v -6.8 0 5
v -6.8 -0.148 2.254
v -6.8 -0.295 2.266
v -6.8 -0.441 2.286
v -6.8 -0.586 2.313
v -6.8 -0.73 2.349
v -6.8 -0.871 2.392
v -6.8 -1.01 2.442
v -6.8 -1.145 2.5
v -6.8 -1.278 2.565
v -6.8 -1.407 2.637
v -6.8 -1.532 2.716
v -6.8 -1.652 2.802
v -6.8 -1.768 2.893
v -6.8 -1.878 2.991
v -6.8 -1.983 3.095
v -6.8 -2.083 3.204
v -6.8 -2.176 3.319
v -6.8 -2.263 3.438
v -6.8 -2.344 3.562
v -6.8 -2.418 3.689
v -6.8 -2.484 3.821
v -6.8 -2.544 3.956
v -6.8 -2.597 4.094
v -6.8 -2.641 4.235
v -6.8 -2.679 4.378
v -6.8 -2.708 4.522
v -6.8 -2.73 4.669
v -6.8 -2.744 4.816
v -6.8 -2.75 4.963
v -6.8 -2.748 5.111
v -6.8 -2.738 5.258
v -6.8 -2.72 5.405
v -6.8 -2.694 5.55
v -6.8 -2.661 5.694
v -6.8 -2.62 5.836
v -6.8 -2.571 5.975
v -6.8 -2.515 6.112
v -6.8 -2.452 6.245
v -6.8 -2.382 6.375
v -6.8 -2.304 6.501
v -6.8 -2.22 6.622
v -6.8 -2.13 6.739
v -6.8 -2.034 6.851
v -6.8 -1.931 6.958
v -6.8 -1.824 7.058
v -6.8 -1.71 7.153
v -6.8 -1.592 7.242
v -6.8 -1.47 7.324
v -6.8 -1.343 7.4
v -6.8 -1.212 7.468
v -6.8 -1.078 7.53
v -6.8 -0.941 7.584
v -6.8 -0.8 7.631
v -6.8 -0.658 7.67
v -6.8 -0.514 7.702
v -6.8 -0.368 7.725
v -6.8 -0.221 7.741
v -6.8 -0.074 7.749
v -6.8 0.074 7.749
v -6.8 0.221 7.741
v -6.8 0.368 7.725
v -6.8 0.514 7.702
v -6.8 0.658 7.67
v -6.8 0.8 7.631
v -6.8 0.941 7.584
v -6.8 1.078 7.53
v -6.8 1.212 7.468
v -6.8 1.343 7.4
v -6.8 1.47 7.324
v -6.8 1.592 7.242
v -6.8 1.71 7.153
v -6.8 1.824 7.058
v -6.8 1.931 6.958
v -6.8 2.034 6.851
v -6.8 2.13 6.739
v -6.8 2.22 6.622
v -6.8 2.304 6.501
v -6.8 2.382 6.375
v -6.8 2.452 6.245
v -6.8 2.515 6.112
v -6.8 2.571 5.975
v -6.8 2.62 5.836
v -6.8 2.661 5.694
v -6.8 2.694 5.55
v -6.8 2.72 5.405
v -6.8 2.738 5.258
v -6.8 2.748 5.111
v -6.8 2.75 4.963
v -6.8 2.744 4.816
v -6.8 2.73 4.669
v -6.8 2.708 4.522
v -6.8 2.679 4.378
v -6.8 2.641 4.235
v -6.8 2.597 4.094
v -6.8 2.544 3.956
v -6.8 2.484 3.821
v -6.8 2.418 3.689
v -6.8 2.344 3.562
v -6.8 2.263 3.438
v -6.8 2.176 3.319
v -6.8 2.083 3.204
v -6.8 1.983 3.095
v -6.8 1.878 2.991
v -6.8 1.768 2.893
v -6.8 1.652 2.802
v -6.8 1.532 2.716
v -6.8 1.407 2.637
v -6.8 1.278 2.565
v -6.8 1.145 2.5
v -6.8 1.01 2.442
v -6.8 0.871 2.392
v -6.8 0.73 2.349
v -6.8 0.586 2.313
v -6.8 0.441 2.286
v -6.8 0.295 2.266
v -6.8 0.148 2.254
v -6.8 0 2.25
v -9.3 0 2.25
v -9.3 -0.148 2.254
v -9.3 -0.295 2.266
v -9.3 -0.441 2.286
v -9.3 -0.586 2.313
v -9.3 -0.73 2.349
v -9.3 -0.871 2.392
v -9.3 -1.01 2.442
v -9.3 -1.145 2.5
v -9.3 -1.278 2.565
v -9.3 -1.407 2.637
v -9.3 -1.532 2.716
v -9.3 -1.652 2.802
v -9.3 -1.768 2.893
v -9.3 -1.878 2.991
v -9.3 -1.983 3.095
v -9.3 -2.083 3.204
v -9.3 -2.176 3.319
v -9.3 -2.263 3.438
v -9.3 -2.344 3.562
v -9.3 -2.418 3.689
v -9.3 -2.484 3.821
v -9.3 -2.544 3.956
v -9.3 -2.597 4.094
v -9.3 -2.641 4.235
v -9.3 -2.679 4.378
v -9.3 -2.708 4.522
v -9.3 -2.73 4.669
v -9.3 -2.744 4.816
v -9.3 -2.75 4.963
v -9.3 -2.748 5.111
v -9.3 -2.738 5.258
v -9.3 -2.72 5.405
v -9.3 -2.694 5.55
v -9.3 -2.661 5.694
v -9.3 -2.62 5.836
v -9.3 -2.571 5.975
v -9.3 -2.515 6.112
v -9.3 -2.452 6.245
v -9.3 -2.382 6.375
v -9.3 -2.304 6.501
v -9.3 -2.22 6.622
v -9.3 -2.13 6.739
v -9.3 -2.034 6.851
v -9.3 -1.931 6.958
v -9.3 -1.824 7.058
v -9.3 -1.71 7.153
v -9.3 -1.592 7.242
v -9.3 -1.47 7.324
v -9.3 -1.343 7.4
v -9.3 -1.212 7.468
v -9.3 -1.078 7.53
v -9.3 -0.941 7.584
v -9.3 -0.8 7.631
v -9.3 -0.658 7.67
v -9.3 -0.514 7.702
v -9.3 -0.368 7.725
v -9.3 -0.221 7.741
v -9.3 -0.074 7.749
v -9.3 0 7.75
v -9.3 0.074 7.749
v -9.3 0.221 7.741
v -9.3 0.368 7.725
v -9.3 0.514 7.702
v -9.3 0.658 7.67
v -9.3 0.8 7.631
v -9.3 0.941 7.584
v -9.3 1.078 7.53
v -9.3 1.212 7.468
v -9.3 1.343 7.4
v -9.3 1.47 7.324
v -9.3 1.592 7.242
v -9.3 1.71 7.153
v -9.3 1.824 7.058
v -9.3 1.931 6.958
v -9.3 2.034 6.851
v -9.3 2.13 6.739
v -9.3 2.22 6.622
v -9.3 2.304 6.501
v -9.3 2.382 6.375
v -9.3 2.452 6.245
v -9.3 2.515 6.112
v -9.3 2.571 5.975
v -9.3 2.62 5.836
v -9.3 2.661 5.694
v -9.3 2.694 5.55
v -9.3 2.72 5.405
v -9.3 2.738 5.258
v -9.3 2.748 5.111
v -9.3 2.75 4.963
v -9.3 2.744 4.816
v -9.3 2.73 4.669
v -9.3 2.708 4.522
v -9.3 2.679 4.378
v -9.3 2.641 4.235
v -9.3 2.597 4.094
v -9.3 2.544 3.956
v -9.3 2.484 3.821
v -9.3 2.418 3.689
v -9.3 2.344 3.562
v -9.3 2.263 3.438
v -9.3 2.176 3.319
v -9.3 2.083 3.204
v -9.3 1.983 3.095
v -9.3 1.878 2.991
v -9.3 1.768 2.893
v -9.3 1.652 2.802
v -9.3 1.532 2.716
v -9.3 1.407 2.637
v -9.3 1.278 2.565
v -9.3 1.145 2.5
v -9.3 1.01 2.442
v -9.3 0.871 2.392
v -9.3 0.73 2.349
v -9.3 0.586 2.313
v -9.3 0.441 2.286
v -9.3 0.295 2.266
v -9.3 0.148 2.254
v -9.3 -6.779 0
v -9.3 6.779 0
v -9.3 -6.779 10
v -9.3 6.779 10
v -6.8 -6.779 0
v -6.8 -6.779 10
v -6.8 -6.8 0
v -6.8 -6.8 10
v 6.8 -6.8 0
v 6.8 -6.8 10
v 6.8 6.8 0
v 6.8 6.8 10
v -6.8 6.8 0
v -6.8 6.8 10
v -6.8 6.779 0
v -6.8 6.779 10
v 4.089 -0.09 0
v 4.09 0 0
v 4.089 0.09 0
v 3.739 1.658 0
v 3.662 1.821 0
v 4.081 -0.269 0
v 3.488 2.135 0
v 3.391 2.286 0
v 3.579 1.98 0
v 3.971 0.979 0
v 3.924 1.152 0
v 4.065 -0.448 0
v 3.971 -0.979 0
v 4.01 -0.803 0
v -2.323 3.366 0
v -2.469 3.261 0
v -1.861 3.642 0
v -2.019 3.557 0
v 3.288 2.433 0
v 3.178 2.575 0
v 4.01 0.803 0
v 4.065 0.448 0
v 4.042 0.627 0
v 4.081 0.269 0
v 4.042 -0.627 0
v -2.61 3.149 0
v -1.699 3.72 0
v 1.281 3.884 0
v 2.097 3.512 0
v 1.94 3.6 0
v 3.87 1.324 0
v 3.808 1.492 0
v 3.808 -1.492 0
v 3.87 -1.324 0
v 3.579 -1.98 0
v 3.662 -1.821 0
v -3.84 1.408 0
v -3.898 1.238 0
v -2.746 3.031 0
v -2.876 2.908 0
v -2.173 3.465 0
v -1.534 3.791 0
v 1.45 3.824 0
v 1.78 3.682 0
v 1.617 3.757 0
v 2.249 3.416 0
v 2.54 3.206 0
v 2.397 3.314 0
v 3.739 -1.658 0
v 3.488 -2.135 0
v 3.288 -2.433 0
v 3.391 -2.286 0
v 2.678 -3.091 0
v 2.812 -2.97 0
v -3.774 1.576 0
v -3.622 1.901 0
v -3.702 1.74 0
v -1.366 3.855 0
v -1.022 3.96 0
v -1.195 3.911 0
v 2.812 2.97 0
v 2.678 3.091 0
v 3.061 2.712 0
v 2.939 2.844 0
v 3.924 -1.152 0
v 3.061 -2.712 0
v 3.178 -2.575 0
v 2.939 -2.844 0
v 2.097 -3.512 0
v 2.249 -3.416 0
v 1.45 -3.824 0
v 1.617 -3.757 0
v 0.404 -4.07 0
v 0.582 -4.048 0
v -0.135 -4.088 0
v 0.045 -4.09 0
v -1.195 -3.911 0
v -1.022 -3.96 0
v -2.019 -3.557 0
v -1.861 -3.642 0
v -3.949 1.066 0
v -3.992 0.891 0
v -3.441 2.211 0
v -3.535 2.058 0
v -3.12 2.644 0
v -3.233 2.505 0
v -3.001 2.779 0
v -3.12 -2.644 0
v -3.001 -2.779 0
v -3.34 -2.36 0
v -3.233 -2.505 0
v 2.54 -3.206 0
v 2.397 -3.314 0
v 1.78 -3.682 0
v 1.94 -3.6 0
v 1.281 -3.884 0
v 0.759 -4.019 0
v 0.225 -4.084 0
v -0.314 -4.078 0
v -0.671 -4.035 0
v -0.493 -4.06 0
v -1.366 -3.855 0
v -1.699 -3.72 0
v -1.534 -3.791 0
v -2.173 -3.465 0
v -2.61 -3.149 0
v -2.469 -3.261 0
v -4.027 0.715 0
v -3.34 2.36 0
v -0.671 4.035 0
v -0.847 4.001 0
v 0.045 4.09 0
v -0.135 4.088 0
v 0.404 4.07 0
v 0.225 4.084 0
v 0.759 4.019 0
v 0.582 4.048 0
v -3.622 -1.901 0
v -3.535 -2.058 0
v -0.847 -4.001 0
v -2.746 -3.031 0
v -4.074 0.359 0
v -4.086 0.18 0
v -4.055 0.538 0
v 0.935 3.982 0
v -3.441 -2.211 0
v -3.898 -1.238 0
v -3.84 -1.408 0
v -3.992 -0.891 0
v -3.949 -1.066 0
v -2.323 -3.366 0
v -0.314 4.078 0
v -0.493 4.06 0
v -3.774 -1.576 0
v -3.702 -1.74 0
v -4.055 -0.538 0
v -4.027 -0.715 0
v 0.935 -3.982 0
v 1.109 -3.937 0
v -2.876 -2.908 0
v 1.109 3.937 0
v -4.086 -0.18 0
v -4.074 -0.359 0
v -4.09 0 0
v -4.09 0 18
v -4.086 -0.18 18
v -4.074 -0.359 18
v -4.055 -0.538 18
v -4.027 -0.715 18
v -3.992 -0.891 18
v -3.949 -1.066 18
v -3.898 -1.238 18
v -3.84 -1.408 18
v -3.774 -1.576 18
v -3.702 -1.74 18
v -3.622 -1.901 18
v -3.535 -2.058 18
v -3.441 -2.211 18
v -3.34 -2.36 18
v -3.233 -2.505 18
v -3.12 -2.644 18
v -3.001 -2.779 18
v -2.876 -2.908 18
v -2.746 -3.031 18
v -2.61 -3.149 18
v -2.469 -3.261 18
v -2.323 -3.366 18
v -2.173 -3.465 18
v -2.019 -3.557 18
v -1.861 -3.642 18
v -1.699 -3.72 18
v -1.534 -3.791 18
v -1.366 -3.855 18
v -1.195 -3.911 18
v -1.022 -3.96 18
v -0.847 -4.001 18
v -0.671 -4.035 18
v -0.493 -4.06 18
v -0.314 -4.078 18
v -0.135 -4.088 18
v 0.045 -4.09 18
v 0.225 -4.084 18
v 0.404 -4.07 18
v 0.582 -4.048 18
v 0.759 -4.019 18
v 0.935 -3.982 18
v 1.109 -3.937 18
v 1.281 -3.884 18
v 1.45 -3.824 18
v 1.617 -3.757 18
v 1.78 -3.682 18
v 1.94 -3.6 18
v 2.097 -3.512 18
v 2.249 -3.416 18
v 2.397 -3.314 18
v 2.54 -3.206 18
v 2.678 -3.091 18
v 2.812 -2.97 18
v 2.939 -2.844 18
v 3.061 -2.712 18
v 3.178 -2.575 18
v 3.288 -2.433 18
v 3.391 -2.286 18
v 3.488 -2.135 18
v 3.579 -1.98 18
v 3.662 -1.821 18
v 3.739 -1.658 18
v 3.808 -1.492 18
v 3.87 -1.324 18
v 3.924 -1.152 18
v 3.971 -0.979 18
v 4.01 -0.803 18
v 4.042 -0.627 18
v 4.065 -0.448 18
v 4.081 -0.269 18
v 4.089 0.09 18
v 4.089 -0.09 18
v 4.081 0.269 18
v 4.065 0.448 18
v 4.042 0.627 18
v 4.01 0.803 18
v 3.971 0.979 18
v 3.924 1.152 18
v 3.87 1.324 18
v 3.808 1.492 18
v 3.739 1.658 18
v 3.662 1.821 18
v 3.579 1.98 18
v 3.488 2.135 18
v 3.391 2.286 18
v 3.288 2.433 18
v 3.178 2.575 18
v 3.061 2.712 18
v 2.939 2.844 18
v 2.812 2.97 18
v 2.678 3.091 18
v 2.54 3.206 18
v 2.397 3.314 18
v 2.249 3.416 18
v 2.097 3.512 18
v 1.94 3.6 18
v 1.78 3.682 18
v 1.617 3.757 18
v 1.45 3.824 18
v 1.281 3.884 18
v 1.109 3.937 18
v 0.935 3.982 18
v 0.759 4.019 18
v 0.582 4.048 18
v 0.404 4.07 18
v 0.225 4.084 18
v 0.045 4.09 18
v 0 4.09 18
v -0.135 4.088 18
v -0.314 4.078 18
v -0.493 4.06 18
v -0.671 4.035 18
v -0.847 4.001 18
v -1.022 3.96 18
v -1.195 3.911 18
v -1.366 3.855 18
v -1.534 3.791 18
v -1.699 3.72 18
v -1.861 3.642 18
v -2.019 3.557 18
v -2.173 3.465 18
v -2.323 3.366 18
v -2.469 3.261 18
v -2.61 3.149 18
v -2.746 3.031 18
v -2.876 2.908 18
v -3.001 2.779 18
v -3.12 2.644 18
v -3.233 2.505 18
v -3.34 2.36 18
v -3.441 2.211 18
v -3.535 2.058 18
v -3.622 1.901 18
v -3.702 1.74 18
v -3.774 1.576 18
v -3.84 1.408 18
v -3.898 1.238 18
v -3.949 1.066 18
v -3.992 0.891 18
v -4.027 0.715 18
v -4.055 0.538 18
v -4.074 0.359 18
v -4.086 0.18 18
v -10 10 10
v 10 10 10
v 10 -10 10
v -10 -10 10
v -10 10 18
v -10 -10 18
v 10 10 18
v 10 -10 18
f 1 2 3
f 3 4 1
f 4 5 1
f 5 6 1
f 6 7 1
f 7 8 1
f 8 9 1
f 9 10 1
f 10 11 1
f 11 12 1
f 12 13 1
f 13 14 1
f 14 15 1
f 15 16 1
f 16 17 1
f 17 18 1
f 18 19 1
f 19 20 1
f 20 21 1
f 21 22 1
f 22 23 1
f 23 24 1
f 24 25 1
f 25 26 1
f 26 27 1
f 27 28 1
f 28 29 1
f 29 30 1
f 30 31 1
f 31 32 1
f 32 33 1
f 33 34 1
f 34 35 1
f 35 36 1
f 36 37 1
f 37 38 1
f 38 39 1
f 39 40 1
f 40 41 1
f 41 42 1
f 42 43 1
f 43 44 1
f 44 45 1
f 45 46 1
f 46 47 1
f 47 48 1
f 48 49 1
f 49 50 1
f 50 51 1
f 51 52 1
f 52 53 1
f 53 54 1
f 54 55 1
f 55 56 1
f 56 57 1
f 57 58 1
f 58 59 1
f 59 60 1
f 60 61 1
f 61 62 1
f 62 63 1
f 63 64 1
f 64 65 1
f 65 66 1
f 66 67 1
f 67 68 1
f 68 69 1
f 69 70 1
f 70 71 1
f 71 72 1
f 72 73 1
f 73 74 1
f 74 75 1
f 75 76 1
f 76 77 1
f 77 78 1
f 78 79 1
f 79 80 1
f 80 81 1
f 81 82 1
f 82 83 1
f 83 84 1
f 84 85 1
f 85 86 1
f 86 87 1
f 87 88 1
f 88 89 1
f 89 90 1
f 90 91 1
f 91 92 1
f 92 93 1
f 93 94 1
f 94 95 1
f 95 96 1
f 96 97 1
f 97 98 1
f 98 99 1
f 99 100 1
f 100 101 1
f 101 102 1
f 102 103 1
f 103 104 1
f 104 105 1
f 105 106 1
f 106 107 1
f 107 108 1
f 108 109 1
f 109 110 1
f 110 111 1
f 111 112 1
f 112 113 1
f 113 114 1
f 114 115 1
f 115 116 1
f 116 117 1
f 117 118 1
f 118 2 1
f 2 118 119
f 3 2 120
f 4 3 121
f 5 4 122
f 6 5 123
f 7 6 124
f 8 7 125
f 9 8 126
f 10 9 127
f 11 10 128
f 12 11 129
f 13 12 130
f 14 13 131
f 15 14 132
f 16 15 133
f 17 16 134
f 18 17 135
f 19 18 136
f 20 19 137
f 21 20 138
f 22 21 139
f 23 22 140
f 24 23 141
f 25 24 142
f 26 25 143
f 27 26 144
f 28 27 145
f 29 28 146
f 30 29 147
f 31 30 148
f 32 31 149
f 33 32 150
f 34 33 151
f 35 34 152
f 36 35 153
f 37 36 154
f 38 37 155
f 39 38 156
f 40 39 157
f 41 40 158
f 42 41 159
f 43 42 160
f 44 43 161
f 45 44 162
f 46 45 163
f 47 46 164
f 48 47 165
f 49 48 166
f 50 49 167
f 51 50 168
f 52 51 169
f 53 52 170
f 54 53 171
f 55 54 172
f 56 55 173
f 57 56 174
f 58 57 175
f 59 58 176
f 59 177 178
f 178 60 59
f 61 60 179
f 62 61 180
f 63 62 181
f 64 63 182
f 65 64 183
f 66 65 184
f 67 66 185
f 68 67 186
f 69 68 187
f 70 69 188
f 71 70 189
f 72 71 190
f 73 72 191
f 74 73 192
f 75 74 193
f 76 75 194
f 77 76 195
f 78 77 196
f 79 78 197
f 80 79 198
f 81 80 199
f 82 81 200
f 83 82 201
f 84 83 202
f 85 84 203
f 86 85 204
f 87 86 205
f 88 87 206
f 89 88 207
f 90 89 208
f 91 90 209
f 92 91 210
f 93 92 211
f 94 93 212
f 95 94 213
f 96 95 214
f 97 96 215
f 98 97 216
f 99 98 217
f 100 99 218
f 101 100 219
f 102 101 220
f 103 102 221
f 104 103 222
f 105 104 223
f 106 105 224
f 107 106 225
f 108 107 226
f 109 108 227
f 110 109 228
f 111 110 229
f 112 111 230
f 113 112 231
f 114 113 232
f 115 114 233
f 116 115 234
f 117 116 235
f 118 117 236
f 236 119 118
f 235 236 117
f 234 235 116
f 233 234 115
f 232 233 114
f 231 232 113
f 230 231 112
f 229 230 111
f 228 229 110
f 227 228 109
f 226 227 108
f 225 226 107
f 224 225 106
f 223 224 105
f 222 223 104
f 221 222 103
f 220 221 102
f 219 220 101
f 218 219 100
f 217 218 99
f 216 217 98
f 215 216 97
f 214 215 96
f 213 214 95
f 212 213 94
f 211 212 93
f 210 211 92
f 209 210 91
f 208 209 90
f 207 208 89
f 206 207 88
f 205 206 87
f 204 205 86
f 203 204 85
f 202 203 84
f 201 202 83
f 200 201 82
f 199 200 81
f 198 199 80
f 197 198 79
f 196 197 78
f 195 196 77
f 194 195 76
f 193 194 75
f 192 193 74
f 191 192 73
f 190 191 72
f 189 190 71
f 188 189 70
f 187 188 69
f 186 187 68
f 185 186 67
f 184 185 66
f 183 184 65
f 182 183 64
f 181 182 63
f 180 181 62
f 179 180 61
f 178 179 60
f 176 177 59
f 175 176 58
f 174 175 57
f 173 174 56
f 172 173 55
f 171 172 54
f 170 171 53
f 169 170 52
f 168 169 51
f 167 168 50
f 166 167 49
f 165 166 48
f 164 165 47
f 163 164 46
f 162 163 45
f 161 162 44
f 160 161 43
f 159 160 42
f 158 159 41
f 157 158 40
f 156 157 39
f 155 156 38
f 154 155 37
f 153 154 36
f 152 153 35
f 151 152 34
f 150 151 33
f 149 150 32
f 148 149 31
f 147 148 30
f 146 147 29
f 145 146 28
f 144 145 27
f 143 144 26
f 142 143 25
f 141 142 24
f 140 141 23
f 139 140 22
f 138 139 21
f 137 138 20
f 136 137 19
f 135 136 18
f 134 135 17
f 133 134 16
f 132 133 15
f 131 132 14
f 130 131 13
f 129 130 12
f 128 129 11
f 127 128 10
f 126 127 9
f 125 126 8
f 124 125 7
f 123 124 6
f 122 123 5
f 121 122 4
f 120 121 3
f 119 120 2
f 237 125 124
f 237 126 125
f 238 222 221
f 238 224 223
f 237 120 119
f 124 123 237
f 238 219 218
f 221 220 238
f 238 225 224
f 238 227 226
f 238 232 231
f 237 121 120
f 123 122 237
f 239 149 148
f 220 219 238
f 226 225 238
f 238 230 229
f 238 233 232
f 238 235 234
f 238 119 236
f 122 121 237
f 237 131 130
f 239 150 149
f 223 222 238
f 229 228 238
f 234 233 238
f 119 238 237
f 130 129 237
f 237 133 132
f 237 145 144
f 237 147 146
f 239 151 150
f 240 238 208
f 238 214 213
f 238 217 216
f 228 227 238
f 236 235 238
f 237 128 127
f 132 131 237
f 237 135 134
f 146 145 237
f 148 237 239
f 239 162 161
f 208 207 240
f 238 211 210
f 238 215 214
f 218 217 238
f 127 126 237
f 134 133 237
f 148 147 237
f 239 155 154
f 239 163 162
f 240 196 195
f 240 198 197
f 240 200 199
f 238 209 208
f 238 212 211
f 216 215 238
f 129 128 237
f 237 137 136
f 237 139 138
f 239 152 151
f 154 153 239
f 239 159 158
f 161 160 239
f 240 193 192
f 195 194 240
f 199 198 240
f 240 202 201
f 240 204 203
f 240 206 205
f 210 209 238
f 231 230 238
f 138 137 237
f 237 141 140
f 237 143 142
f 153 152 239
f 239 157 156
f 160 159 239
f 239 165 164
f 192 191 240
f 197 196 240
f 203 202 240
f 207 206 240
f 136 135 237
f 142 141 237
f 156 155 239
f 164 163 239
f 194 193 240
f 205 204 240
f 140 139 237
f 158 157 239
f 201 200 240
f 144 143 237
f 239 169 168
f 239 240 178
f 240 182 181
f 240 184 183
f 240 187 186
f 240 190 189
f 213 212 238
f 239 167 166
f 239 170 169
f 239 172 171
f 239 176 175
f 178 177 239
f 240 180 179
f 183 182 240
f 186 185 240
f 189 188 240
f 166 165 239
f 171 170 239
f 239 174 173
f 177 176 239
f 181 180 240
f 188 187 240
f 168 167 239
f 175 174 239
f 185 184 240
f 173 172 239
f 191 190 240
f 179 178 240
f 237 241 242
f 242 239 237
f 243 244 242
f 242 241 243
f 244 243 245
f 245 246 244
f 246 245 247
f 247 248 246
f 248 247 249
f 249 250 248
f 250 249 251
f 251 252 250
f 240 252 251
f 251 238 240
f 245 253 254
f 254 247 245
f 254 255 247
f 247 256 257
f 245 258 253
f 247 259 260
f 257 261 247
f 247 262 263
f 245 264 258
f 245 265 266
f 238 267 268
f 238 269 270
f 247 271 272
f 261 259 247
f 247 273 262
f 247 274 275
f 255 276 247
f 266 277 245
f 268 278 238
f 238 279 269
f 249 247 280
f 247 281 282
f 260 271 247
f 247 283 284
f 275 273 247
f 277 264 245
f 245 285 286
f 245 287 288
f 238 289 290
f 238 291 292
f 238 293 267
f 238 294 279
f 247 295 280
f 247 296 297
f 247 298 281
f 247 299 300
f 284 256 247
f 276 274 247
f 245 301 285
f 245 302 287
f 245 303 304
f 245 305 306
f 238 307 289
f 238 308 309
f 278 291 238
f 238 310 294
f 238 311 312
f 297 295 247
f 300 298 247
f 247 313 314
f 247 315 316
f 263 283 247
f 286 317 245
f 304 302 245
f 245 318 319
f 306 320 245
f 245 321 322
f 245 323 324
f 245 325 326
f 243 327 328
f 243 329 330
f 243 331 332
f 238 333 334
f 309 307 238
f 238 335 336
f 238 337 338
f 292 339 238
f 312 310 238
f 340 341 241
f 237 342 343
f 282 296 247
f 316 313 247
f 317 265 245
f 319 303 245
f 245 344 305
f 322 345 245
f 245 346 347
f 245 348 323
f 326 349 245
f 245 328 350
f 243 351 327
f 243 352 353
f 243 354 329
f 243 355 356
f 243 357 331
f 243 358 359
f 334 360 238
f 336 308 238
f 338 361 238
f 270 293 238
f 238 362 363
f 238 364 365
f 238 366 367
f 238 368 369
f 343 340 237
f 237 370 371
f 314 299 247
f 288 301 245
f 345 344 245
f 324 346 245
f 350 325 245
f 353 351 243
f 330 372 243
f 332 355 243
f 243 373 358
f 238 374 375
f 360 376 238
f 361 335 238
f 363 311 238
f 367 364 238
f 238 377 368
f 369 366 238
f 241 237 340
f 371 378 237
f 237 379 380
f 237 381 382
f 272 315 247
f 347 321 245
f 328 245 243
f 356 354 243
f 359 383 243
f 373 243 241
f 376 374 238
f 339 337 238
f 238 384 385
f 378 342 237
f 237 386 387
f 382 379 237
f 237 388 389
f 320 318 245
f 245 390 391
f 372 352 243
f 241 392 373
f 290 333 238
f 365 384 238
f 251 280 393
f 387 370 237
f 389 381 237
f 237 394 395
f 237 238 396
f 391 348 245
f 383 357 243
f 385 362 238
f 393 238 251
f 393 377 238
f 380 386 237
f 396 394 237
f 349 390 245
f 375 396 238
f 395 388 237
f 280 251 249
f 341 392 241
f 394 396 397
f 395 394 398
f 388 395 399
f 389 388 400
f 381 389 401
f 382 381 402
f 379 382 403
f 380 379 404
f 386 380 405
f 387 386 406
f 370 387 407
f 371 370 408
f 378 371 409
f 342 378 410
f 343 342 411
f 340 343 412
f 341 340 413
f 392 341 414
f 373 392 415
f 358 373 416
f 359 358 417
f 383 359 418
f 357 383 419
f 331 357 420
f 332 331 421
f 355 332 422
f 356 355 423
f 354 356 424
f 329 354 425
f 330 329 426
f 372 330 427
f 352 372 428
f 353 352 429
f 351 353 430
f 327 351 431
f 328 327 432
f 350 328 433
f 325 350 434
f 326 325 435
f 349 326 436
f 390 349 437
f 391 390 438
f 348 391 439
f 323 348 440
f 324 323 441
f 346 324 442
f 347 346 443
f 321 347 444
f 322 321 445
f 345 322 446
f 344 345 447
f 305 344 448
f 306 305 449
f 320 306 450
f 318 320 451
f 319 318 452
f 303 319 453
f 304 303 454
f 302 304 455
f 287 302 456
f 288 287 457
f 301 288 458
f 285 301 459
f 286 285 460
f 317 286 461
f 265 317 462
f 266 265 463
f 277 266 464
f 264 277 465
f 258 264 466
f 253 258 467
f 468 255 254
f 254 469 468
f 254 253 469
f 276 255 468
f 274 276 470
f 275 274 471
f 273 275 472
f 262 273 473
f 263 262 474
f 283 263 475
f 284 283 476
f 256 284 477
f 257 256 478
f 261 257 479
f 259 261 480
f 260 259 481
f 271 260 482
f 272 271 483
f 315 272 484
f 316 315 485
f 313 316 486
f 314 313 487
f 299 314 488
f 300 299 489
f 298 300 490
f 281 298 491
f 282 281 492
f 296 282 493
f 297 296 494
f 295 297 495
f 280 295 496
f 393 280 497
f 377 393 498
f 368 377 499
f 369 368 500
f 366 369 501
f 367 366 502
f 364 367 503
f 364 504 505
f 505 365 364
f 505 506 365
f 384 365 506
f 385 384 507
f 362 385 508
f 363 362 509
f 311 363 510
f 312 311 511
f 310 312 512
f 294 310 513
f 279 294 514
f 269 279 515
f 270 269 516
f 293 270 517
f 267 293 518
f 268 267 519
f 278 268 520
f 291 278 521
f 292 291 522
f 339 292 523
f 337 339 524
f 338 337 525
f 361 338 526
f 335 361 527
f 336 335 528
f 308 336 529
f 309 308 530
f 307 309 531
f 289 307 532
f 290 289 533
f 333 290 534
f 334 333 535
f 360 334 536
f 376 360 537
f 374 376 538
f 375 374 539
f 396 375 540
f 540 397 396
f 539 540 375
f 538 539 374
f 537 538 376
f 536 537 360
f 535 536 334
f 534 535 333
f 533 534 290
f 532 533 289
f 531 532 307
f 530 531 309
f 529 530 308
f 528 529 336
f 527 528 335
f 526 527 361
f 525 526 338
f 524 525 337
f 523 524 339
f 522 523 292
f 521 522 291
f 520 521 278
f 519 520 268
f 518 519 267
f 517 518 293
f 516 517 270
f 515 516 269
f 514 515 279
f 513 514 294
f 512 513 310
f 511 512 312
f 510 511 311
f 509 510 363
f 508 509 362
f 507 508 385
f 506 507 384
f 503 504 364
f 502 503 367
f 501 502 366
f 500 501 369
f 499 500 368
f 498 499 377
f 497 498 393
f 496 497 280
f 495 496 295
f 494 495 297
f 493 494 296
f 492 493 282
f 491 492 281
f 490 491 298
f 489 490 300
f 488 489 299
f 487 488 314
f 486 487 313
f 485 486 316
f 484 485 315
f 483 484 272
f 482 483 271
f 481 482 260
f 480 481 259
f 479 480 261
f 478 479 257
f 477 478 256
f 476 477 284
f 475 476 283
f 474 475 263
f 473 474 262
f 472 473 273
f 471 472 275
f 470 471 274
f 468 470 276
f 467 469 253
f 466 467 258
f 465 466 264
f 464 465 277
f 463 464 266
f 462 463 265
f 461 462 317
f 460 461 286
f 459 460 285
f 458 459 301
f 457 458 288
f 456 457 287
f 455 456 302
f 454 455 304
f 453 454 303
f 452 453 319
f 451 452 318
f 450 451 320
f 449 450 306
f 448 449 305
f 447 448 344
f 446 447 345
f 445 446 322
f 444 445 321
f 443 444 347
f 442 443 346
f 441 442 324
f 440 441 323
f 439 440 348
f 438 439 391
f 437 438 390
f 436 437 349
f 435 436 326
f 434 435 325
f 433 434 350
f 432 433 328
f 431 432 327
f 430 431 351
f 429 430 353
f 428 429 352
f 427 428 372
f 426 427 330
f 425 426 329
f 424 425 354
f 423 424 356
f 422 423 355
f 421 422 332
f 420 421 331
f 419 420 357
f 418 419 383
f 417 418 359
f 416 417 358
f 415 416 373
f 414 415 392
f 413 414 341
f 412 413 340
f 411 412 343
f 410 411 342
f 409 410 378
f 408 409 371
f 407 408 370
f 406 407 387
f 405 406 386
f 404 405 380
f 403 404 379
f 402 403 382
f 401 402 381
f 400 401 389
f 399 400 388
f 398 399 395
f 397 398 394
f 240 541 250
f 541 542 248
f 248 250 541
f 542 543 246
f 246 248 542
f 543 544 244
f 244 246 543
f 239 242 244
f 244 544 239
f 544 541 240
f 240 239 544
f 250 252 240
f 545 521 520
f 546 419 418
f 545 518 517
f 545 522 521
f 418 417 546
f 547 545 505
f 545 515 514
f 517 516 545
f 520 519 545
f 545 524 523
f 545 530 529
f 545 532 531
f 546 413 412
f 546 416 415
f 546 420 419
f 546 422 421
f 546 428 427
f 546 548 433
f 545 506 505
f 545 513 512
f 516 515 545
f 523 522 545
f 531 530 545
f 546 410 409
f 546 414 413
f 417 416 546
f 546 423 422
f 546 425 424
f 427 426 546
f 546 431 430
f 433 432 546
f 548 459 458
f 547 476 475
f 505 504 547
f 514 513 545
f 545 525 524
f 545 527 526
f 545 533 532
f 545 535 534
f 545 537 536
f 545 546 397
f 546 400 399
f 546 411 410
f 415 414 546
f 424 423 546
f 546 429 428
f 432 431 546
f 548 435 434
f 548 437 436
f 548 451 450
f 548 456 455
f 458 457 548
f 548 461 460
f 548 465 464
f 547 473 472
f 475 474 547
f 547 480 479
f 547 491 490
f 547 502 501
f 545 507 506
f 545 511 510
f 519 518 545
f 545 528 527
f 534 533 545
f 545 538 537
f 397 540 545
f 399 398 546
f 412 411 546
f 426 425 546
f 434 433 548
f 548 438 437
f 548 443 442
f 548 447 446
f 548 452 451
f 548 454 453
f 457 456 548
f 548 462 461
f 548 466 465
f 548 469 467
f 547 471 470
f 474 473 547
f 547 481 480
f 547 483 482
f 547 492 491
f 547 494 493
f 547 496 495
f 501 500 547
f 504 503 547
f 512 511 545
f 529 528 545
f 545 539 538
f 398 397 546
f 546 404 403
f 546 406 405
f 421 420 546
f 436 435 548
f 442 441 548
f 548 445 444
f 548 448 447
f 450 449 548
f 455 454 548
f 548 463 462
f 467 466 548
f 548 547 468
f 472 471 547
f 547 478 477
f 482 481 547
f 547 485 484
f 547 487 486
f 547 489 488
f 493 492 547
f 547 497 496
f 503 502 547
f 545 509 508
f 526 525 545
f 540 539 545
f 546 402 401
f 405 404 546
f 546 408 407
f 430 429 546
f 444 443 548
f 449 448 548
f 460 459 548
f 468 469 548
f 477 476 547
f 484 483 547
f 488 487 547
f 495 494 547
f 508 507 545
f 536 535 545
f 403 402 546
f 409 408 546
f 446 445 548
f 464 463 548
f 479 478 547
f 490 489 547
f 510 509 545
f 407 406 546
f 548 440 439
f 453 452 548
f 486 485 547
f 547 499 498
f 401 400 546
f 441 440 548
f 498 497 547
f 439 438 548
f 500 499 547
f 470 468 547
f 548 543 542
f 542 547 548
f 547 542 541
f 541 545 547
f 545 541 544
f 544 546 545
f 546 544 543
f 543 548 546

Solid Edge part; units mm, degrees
sketch "Sketch1" plane through (0, 0, 0) normal (0, 0, 1) x (1, 0, 0)
  line L0 (6.8, -6.8) -> (6.8, 6.8)
  line L1 (6.8, 6.8) -> (-6.8, 6.8)
  line L2 (-6.8, 6.8) -> (-6.8, -6.8)
  line L3 (-6.8, -6.8) -> (6.8, -6.8)
  circle A0 centre (0, 0) radius 4.09
  dimension "D1" = 8.18
  dimension "D2" = 13.6
  dimension "D3" = 13.6
extrude "Protrusion1" add sketch "Sketch1" along normal blind 10
sketch "Sketch2" plane through (0, 0, 10) normal (0, 0, 1) x (0, 1, 0)
  circle A0 centre (0, 0) radius 4.09
  line L0 (10, -10) -> (10, 10)
  line L1 (10, 10) -> (-10, 10)
  line L2 (-10, 10) -> (-10, -10)
  line L3 (-10, -10) -> (10, -10)
  dimension "D1" = 8.18
  dimension "D2" = 20
  dimension "D3" = 20
extrude "ExtrudedProtrusion_2" add sketch "Sketch2" along normal blind 4
sketch "Sketch3" plane through (-6.8, 0, 5) normal (-1, 0, 0) x (0, 0, 1)
  line L0 (5, -6.7794) -> (-5, -6.7794)
  line L1 (-5, -6.7794) -> (-5, 6.7794)
  line L2 (-5, 6.7794) -> (5, 6.7794)
  line L3 (5, 6.7794) -> (5, -6.7794)
  circle A0 centre (0, 0) radius 2.75
  dimension "D1" = 10
  dimension "D2" = 13.5589
  dimension "D3" = 5.5
extrude "ExtrudedProtrusion_3" add sketch "Sketch3" along normal blind 2.5
sketch "Sketch4" plane through (0, 0, 14) normal (0, 0, 1) x (0, 1, 0)
  circle A0 centre (0, 0) radius 4.09
  line L0 (10, -10) -> (10, 10)
  line L1 (10, 10) -> (-10, 10)
  line L2 (-10, 10) -> (-10, -10)
  line L3 (-10, -10) -> (10, -10)
  dimension "D1" = 8.18
  dimension "D2" = 20
  dimension "D3" = 20
extrude "ExtrudedProtrusion_4" add sketch "Sketch4" along normal blind 4
